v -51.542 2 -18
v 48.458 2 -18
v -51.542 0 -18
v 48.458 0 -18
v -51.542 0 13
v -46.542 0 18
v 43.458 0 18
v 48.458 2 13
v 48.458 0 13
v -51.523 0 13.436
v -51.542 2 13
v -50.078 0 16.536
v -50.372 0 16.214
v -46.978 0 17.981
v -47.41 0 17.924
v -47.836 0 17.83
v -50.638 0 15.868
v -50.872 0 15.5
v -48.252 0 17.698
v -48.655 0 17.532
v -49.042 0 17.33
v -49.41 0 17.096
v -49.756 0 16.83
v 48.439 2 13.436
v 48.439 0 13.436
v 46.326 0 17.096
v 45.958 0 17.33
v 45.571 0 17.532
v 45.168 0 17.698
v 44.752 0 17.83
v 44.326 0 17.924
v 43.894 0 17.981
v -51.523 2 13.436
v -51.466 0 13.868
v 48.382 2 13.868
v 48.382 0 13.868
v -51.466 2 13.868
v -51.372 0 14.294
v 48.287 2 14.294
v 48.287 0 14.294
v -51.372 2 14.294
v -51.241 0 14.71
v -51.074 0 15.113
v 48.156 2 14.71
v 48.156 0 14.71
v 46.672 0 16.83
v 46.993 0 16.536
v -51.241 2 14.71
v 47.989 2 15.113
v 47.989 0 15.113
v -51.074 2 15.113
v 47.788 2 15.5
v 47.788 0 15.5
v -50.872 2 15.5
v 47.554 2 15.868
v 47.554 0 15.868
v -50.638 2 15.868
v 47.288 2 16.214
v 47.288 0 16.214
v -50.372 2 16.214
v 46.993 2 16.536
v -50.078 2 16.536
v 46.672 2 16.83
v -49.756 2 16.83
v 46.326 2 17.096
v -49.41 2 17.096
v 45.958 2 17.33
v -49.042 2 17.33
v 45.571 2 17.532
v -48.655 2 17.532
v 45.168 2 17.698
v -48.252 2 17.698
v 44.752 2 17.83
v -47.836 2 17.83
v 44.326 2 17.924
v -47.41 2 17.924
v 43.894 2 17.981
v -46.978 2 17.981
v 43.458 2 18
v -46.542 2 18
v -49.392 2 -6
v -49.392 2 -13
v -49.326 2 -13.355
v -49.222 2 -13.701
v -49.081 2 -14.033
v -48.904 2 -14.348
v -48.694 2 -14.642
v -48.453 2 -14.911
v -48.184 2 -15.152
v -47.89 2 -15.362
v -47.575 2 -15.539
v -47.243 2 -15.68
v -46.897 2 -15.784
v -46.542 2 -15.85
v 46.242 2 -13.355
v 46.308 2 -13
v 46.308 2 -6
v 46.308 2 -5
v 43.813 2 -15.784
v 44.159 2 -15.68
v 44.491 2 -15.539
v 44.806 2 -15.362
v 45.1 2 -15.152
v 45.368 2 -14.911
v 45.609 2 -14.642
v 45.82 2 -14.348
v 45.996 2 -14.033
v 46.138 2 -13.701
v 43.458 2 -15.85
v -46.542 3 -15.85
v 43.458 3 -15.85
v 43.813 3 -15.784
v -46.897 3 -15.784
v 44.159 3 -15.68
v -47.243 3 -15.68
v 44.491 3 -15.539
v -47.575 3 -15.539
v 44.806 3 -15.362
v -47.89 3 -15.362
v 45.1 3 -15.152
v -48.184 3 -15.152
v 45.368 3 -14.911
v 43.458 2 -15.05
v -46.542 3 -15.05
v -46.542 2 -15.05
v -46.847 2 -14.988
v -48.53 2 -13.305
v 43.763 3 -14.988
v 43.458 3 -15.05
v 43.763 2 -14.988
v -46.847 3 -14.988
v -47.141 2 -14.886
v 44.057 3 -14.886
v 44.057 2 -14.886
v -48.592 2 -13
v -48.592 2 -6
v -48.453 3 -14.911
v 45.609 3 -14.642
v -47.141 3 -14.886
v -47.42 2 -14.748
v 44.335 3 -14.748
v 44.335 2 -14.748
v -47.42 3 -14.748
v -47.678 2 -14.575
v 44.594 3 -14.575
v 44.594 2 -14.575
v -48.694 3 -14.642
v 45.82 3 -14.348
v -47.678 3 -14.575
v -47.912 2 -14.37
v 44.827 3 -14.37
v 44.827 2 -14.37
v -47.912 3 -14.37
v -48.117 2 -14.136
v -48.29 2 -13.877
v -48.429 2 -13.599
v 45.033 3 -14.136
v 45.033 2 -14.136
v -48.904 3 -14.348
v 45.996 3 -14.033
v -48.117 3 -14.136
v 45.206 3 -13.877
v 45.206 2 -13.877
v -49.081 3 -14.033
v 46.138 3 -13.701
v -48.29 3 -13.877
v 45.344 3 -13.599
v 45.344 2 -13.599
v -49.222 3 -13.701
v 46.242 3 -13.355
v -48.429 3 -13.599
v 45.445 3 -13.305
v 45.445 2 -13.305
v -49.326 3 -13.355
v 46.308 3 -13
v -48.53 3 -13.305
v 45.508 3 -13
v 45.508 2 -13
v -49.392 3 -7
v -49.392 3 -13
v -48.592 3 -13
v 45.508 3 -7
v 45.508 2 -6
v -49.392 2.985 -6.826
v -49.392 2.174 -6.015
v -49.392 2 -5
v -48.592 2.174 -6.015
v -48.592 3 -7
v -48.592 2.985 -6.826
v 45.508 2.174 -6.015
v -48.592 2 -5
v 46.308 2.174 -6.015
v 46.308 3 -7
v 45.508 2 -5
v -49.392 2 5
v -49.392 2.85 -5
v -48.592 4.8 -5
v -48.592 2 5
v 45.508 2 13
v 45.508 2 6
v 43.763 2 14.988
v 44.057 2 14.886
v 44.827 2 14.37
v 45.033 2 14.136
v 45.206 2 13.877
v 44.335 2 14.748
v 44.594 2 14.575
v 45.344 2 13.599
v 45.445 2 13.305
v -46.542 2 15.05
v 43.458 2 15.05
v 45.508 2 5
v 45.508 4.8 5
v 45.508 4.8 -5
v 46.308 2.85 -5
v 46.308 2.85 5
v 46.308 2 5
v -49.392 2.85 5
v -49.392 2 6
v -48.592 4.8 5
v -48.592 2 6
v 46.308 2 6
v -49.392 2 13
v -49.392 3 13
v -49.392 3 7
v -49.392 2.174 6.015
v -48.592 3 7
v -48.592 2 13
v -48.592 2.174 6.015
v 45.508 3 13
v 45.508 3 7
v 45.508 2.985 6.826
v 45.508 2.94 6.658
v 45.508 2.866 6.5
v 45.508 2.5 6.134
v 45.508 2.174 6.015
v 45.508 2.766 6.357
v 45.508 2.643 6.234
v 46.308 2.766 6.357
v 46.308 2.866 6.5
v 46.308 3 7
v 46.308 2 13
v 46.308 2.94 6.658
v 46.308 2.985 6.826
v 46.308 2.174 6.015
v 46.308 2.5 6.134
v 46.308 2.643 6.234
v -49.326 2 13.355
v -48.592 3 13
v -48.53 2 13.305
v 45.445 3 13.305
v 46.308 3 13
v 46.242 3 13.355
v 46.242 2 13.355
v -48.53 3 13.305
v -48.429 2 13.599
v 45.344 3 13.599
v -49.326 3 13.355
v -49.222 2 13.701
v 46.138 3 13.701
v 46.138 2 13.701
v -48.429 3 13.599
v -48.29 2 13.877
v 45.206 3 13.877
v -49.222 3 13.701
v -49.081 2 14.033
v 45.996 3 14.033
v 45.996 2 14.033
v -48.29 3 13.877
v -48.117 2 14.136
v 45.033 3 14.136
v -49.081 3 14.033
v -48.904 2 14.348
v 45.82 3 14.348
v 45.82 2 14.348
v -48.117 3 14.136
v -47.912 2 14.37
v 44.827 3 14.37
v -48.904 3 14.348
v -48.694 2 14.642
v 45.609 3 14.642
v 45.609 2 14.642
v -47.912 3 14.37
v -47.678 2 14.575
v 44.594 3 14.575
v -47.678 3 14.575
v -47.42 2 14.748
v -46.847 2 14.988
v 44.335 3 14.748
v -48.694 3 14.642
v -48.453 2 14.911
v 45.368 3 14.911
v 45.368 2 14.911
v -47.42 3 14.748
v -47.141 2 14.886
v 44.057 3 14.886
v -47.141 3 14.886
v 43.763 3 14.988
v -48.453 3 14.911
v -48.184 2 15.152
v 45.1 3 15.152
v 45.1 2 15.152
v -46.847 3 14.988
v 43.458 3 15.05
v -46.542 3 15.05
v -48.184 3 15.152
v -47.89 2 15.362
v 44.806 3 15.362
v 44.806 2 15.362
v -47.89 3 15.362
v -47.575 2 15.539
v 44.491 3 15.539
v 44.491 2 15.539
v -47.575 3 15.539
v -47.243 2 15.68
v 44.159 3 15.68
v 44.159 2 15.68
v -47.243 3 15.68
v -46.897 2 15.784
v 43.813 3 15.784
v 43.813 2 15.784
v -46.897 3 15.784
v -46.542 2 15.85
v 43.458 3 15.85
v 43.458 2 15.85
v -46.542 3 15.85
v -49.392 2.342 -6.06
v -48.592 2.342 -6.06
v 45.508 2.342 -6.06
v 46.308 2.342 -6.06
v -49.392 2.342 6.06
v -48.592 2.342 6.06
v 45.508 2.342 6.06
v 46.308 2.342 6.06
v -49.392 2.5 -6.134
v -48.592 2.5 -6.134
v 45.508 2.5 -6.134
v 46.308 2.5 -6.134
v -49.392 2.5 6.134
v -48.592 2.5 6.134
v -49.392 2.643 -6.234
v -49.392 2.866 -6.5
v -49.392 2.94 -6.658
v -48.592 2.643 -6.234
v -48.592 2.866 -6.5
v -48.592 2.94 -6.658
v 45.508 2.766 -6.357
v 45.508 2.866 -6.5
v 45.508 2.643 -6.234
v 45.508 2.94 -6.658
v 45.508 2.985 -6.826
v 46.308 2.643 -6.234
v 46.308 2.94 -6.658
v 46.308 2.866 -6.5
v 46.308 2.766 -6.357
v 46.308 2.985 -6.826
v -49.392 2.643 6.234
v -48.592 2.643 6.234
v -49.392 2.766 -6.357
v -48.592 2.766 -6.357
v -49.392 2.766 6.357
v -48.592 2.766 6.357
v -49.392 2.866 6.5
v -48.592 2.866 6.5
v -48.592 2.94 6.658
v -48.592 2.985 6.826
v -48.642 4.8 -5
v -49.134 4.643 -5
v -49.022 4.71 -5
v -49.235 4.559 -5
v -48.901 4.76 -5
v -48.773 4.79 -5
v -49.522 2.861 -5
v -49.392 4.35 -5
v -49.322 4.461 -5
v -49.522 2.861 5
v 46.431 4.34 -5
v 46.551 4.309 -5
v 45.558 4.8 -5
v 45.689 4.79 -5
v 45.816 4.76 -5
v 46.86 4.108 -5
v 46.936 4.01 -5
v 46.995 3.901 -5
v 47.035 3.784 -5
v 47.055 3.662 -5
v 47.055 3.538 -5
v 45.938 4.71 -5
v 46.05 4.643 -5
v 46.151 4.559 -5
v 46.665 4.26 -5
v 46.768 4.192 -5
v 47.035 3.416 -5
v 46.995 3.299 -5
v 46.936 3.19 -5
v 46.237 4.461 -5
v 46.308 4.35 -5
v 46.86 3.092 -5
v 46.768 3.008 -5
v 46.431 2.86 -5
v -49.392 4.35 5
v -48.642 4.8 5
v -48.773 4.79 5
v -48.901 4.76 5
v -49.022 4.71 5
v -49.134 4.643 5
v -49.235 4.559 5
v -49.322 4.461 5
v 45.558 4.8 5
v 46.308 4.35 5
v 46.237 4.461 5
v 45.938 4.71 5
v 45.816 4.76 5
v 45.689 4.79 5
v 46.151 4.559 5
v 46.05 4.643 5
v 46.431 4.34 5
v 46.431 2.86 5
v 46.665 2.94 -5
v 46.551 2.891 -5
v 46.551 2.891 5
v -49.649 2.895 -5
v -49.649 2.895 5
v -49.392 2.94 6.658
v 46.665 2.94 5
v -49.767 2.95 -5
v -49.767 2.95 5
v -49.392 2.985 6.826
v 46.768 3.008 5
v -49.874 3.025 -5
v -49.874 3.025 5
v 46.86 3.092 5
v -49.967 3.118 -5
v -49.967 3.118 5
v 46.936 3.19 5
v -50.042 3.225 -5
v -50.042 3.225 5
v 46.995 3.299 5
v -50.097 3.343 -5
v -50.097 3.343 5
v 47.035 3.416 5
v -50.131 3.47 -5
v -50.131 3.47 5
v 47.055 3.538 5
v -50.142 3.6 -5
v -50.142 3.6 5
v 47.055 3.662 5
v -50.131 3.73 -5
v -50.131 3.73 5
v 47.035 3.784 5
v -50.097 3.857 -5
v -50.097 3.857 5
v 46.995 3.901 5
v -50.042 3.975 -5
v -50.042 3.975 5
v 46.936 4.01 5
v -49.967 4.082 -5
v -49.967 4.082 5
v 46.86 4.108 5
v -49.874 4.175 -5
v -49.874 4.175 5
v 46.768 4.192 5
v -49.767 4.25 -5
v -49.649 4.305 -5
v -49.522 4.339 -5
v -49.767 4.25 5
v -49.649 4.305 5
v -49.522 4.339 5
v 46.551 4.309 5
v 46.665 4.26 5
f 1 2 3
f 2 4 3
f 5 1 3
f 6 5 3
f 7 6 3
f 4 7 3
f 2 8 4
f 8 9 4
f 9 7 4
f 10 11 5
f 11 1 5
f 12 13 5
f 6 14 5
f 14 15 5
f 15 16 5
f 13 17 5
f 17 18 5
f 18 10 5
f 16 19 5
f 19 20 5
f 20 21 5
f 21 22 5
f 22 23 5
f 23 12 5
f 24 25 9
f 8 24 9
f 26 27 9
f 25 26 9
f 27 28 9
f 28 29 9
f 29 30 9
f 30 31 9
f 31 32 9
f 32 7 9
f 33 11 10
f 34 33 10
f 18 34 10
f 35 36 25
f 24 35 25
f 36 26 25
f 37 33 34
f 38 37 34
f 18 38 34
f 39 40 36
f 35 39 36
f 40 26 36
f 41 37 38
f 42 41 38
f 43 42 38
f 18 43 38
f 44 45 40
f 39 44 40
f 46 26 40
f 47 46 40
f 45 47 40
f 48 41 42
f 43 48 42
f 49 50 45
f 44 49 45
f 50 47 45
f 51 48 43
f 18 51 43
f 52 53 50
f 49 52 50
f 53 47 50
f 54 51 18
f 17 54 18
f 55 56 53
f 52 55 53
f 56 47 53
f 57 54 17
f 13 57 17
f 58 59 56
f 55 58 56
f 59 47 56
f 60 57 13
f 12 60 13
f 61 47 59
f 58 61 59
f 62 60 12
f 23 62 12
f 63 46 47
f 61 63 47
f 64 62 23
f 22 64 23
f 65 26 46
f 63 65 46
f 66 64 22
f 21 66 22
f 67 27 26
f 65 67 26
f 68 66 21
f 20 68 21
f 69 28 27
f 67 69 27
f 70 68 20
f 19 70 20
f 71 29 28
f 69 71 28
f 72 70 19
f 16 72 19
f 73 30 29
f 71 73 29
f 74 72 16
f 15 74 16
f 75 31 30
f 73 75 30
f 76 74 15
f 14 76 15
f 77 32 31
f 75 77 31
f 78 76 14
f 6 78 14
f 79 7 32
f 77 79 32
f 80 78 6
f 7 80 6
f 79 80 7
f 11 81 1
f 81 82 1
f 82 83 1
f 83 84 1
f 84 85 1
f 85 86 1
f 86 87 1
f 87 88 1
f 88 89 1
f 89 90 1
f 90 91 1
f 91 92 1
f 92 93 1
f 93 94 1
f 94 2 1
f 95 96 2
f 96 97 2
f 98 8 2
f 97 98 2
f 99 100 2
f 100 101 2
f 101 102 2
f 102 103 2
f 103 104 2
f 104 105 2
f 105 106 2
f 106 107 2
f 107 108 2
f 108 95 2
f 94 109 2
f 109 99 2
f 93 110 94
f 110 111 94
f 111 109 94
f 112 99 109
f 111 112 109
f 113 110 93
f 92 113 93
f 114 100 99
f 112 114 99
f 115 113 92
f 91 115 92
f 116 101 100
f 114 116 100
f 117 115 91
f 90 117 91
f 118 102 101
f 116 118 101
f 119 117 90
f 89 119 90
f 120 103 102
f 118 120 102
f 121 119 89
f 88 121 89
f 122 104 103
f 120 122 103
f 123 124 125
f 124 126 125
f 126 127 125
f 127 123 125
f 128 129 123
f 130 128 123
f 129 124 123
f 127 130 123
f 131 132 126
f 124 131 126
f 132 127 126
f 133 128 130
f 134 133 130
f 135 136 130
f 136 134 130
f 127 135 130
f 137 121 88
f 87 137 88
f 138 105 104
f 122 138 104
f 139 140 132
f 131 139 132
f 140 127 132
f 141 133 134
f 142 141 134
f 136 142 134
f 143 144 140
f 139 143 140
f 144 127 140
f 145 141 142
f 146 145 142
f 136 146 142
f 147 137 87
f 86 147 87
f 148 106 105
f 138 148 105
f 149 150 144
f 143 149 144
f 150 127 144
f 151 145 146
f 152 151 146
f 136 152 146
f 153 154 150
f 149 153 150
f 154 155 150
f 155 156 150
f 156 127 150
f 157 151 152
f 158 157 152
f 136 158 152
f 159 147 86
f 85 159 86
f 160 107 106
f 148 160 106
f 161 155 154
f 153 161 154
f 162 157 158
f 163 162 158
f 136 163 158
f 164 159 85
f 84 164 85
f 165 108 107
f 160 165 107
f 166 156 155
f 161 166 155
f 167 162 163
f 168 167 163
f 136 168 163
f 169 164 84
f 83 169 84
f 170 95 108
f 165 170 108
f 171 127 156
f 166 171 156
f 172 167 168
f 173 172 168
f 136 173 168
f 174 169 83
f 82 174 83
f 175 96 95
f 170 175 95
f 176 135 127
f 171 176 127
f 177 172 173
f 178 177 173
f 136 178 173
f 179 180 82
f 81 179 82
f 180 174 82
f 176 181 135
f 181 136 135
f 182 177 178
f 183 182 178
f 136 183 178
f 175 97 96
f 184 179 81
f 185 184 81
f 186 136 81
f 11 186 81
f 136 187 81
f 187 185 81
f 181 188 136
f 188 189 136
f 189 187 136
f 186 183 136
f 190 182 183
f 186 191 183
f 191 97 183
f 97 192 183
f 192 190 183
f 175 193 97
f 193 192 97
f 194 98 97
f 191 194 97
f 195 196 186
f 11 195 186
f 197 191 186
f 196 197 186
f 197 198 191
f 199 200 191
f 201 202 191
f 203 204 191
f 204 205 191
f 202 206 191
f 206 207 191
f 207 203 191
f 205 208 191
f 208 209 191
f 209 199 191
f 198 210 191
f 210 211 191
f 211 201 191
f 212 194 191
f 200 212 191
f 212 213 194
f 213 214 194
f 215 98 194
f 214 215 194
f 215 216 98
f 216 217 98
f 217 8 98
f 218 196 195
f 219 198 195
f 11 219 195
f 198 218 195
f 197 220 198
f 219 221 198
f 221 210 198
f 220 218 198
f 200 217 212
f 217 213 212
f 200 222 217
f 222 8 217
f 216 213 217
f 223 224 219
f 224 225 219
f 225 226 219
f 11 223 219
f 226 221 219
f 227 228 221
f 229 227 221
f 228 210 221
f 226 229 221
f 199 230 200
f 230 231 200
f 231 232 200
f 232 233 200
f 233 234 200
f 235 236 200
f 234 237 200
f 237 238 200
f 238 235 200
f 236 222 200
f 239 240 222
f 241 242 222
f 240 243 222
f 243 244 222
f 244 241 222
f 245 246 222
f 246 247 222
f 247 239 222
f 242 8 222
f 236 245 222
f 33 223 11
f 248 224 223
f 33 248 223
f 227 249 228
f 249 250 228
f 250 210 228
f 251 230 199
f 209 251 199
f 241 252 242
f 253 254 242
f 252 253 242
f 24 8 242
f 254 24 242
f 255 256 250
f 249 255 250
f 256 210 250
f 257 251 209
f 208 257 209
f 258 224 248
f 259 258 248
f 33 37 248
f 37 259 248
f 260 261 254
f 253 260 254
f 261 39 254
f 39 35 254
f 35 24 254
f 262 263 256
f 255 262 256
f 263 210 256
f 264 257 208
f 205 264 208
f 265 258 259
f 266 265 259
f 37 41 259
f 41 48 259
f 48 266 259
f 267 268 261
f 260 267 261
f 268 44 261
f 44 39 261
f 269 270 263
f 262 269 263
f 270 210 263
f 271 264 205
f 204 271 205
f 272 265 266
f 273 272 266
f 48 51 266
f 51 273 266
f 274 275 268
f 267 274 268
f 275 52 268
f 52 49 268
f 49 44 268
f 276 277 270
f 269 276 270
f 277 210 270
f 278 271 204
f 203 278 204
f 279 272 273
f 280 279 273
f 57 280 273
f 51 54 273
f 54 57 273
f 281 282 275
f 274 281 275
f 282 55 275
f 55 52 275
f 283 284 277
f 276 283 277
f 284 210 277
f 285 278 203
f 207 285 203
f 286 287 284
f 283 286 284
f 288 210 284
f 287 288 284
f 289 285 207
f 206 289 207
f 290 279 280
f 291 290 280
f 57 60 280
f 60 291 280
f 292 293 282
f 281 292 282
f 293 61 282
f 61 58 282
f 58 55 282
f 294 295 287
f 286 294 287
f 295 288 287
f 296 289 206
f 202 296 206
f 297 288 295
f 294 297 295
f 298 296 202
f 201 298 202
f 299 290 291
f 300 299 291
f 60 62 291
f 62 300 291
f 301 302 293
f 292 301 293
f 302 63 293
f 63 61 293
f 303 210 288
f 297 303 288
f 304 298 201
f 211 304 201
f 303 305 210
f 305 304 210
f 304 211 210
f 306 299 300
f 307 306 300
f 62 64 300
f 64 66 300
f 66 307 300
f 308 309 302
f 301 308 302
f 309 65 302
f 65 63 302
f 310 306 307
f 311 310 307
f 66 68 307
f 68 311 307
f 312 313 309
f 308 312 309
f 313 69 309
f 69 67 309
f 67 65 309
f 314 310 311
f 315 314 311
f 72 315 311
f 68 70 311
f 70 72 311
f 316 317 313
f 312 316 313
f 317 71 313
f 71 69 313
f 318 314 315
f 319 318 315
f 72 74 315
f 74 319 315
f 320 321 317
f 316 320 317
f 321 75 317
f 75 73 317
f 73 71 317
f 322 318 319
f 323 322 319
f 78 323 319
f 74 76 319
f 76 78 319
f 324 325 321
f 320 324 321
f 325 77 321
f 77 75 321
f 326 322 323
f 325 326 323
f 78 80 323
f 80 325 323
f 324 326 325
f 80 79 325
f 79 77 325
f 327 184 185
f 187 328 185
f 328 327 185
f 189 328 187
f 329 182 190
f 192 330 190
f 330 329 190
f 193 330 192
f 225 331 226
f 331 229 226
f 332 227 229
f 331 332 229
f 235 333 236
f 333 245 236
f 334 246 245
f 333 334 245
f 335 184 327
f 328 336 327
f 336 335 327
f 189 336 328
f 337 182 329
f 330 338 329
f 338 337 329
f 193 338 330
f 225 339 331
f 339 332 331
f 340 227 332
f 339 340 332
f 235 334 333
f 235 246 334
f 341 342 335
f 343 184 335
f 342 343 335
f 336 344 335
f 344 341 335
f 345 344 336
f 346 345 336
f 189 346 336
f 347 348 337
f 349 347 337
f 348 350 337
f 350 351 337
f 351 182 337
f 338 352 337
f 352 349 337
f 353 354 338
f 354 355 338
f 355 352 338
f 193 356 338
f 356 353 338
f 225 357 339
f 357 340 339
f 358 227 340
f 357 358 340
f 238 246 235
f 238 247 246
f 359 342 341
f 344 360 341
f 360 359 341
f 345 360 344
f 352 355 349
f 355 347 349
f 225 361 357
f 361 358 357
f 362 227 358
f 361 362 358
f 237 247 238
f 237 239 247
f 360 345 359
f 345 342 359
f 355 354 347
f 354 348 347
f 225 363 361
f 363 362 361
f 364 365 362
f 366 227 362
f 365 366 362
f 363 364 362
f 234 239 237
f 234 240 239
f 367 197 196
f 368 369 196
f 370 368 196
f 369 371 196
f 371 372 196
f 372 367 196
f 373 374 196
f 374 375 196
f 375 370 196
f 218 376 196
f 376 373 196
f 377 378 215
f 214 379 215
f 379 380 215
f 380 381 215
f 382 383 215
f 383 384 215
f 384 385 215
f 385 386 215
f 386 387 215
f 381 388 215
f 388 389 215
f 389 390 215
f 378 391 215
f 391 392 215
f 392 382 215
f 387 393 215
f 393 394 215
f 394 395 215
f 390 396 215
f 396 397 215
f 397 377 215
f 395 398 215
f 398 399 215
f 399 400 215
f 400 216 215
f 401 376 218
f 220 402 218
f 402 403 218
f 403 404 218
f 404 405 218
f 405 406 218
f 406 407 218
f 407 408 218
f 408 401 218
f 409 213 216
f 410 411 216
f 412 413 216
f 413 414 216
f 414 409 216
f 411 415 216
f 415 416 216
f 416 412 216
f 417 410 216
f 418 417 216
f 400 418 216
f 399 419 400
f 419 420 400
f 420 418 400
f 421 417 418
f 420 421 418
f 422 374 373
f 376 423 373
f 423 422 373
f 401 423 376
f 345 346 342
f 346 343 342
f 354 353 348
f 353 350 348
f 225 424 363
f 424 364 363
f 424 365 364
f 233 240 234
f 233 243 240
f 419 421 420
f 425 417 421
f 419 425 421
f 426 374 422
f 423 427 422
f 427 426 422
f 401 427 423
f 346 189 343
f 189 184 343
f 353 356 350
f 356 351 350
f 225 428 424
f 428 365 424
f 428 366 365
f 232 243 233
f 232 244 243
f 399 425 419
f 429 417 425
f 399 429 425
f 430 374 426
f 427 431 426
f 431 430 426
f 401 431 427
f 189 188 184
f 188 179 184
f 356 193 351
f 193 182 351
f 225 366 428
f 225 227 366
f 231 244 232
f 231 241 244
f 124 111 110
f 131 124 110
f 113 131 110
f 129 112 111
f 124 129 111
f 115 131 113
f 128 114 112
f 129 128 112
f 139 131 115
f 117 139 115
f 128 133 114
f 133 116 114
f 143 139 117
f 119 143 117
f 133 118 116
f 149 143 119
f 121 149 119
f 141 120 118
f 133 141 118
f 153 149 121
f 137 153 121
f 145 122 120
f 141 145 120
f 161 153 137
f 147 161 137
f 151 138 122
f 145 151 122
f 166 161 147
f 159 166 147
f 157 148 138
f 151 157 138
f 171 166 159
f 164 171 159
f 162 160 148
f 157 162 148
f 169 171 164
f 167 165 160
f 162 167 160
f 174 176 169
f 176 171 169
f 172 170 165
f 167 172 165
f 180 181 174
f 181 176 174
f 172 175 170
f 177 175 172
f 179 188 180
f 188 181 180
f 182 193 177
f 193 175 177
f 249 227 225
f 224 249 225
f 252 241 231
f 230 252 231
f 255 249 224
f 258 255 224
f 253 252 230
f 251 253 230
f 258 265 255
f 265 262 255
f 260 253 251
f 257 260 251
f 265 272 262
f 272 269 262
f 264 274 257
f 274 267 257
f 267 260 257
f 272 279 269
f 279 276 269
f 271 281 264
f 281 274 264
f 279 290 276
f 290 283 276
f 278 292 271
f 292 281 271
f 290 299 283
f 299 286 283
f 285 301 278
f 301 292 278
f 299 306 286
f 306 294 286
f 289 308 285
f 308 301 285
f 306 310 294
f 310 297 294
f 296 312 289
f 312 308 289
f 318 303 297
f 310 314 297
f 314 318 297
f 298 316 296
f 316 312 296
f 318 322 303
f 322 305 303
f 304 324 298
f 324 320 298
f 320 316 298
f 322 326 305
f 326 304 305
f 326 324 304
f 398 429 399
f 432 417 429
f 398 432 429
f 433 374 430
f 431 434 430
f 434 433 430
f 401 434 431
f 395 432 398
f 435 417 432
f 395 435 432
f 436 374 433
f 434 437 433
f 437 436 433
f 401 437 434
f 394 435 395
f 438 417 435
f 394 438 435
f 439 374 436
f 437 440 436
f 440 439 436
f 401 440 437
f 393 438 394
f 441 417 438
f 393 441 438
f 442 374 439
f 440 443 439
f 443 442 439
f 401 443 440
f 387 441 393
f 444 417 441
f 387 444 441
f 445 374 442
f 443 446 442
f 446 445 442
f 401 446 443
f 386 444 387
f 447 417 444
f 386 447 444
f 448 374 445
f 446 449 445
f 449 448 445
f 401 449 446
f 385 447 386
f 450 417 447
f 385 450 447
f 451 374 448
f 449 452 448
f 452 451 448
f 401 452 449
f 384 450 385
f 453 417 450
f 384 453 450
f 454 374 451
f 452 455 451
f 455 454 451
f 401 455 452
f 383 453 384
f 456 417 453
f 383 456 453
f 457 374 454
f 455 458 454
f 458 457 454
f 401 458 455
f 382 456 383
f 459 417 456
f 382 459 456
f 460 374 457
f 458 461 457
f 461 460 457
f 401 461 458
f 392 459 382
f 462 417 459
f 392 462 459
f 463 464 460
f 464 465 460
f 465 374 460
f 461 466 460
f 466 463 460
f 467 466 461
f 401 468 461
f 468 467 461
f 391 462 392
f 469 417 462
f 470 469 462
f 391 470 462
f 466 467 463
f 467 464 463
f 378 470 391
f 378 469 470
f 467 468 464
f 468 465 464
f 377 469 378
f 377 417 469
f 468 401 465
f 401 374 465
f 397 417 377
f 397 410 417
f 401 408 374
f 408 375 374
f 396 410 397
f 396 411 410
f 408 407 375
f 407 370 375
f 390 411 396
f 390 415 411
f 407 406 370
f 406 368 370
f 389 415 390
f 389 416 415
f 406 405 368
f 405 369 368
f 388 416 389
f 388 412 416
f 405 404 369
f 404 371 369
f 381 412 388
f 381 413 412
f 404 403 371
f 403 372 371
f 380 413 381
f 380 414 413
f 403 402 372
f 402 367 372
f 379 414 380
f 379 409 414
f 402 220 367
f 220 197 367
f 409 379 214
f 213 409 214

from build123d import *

# Parameters (mm, degrees)
EXTRUDE_2_DEPTH     = 2
EXTRUDE_4_DEPTH     = 1
SKETCH_7_W          = 0.8
SKETCH_7_H          = 10
EXTRUDE_8_DEPTH     = 2.8
SKETCH_8_R          = 0.75
EXTRUDE_9_DEPTH     = 10
FILLET_1_R          = 0.85
SKETCH_11_W         = 1
SKETCH_11_H         = 1
CUT_EXTRUDE_1_DEPTH = 1.2
FILLET_2_R          = 1
SKETCH_13_W         = 0.8
SKETCH_13_H         = 10
EXTRUDE_10_DEPTH    = 1.8
SKETCH_14_R         = 0.75
EXTRUDE_11_DEPTH    = 10
FILLET_3_R          = 0.85
SKETCH_15_W         = 0.8
SKETCH_15_H         = 1
CUT_EXTRUDE_3_DEPTH = 1
FILLET_4_R          = 1


# Some blends are built 0.0001 mm under size
with BuildPart() as part:
    # case 2 → 凸台-拉伸2 (new body)
    with BuildSketch(Plane(origin=(0, 0, 0), x_dir=(1, 0, 0), z_dir=(0, 1, 0))):
        with BuildLine():
            Line((-51.542196447, 13), (-51.542196447, 18))
            Line((-51.542196447, 18), (-46.542196447, 18))
            Line((-46.542196447, 18), (43.457803553, 18))
            Line((43.457803553, 18), (48.457803553, 18))
            Line((48.457803553, 18), (48.457803553, 13))
            Line((48.457803553, 13), (48.457803553, -13))
            ThreePointArc((48.457803553, -13), (46.993337459, -16.535533906), (43.457803553, -18))
            Line((43.457803553, -18), (-46.542196447, -18))
            ThreePointArc((-46.542196447, -18), (-50.077730353, -16.535533906), (-51.542196447, -13))
            Line((-51.542196447, -13), (-51.542196447, 13))
        make_face()
    extrude(amount=EXTRUDE_2_DEPTH)

    # 草图3 → 凸台-拉伸4 (add)
    with BuildSketch(Plane(origin=(0, 2, 0), x_dir=(1, 0, 0), z_dir=(0, 1, 0))):
        with BuildLine():
            Line((-49.392196447, 13), (-49.392196447, -13))
            ThreePointArc((-49.392196447, -13), (-48.452846076, -14.910649629), (-46.542196447, -15.85))
            Line((-46.542196447, -15.85), (43.457803553, -15.85))
            ThreePointArc((43.457803553, -15.85), (45.368453181, -14.910649629), (46.307803553, -13))
            Line((46.307803553, -13), (46.307803553, 13))
            ThreePointArc((46.307803553, 13), (45.368453181, 14.910649629), (43.457803553, 15.85))
            Line((43.457803553, 15.85), (-46.542196447, 15.85))
            ThreePointArc((-46.542196447, 15.85), (-48.452846076, 14.910649629), (-49.392196447, 13))
        make_face()
        with BuildLine():
            Line((-46.542196447, -15.05), (43.457803553, -15.05))
            ThreePointArc((43.457803553, -15.05), (44.827315928, -14.369512375), (45.507803553, -13))
            Line((45.507803553, -13), (45.507803553, 13))
            ThreePointArc((45.507803553, 13), (44.827315928, 14.369512375), (43.457803553, 15.05))
            Line((43.457803553, 15.05), (-46.542196447, 15.05))
            ThreePointArc((-46.542196447, 15.05), (-47.911708823, 14.369512375), (-48.592196447, 13))
            Line((-48.592196447, 13), (-48.592196447, -13))
            ThreePointArc((-48.592196447, -13), (-47.911708823, -14.369512375), (-46.542196447, -15.05))
        make_face(mode=Mode.SUBTRACT)
    extrude(amount=EXTRUDE_4_DEPTH)

    # 草图7 → 凸台-拉伸8 (add)
    with BuildSketch(Plane(origin=(0, 2, 0), x_dir=(1, 0, 0), z_dir=(0, 1, 0))):
        with Locations((-48.992196447, 0)):
            Rectangle(SKETCH_7_W, SKETCH_7_H)
    extrude(amount=EXTRUDE_8_DEPTH)

    # 草图8 → 凸台-拉伸9 (add)
    with BuildSketch(Plane.XY.offset(5)):
        with Locations((-49.392196447, 3.6)):
            Circle(SKETCH_8_R)
    extrude(amount=-EXTRUDE_9_DEPTH)

    # 圆角1
    # the kernel refuses this fillet: 0.85 mm, written as the material it takes off along each edge
    with BuildSketch(Plane(origin=(-49.392196447, 4.8, 6.875), x_dir=(0, -1, 0), z_dir=(0, 0, -1))) as fillet_1_piece_1:
        with BuildLine():
            CenterArc((0.85, -0.75), FILLET_1_R, 118.072486936, 61.927513064)
            Line((0, -0.75), (-0.017, -0.75))
            Line((-0.017, -0.75), (-0.017, 0))
            Line((-0.017, 0), (0, 0.017))
            ThreePointArc((0, 0.017), (0.225, 0.017), (0.442, 0.015))
            Line((0.442, 0.015), (0.45, 0))
        make_face()
    extrude(amount=13.75, mode=Mode.SUBTRACT)

    # 草图11 → 切除-拉伸1 (cut)
    with BuildSketch(Plane.ZY.offset(49.392196447)):
        with Locations((5.5, 2.5)):
            Rectangle(SKETCH_11_W, SKETCH_11_H)
        with Locations((-5.5, 2.5)):
            Rectangle(SKETCH_11_W, SKETCH_11_H)
    extrude(amount=-CUT_EXTRUDE_1_DEPTH, mode=Mode.SUBTRACT)

    # 圆角2
    fillet_2_edges = [part.edges().sort_by_distance(p)[0] for p in [
        (-48.992196447, 3, 6),
        (-48.992196447, 3, -6),
    ]]
    fillet(fillet_2_edges, radius=FILLET_2_R - 0.0001)  # a hair under: the kernel refuses the full size

    # 草图13 → 凸台-拉伸10 (add)
    with BuildSketch(Plane(origin=(0, 3, 0), x_dir=(1, 0, 0), z_dir=(0, 1, 0))):
        with Locations((45.907803553, 0)):
            Rectangle(SKETCH_13_W, SKETCH_13_H)
    extrude(amount=EXTRUDE_10_DEPTH)

    # 草图14 → 凸台-拉伸11 (add)
    with BuildSketch(Plane.XY.offset(5)):
        with Locations((46.307803553, 3.6)):
            Circle(SKETCH_14_R)
    extrude(amount=-EXTRUDE_11_DEPTH)

    # 圆角3
    # the kernel refuses this fillet: 0.85 mm, written as the material it takes off along each edge
    with BuildSketch(Plane(origin=(46.307803553, 4.8, -6.875), x_dir=(0, -1, 0), z_dir=(0, 0, 1))) as fillet_3_piece_1:
        with BuildLine():
            CenterArc((0.85, -0.75), FILLET_3_R, 118.072486936, 61.927513064)
            Line((0, -0.75), (-0.017, -0.75))
            Line((-0.017, -0.75), (-0.017, 0))
            Line((-0.017, 0), (0, 0.017))
            ThreePointArc((0, 0.017), (0.225, 0.017), (0.442, 0.015))
            Line((0.442, 0.015), (0.45, 0))
        make_face()
    extrude(amount=13.75, mode=Mode.SUBTRACT)

    # 草图15 → 切除-拉伸3 (cut)
    with BuildSketch(Plane(origin=(0, 3, 0), x_dir=(1, 0, 0), z_dir=(0, 1, 0))):
        with Locations((45.907803553, 5.5)):
            Rectangle(SKETCH_15_W, SKETCH_15_H)
        with Locations((45.907803553, -5.5)):
            Rectangle(SKETCH_15_W, SKETCH_15_H)
    extrude(amount=-CUT_EXTRUDE_3_DEPTH, mode=Mode.SUBTRACT)

    # 圆角4
    fillet_4_edges = [part.edges().sort_by_distance(p)[0] for p in [
        (45.907803553, 3, 6),
        (45.907803553, 3, -6),
    ]]
    fillet(fillet_4_edges, radius=FILLET_4_R - 0.0001)  # a hair under: the kernel refuses the full size


solid = part.part
